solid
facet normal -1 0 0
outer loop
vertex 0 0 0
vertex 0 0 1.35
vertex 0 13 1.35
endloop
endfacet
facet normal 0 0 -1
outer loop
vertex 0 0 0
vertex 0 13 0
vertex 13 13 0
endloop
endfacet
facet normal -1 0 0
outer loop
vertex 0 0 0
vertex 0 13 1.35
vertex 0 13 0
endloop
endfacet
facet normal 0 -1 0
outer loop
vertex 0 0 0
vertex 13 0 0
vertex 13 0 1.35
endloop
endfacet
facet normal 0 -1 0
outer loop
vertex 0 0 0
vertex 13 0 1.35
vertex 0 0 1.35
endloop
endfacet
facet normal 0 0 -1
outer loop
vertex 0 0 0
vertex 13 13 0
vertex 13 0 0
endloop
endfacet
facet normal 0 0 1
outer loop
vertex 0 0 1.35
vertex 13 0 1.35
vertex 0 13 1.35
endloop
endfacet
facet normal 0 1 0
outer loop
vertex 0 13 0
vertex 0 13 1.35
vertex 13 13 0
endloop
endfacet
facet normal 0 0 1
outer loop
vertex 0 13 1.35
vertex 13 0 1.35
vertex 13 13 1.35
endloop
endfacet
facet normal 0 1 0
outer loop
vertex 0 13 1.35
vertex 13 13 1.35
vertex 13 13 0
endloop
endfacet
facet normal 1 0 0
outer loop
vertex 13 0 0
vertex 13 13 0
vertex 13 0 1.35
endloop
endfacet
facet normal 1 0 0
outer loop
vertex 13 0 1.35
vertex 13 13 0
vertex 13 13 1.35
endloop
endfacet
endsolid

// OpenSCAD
/* Warning, this is a very basic generator with a lot of approximation 
input data : [LBGA, A4B, 13x13x1.35mm, 144, , A, C04-21112A]
generated by com.zoubworld.electronics.cad.model3d.Basic
Date : Sun Feb 15 10:50:49 CET 2026
*/

//body
color("black")
translate([0,0,0])
cube([13.0,13.0,1.35], center=false);
